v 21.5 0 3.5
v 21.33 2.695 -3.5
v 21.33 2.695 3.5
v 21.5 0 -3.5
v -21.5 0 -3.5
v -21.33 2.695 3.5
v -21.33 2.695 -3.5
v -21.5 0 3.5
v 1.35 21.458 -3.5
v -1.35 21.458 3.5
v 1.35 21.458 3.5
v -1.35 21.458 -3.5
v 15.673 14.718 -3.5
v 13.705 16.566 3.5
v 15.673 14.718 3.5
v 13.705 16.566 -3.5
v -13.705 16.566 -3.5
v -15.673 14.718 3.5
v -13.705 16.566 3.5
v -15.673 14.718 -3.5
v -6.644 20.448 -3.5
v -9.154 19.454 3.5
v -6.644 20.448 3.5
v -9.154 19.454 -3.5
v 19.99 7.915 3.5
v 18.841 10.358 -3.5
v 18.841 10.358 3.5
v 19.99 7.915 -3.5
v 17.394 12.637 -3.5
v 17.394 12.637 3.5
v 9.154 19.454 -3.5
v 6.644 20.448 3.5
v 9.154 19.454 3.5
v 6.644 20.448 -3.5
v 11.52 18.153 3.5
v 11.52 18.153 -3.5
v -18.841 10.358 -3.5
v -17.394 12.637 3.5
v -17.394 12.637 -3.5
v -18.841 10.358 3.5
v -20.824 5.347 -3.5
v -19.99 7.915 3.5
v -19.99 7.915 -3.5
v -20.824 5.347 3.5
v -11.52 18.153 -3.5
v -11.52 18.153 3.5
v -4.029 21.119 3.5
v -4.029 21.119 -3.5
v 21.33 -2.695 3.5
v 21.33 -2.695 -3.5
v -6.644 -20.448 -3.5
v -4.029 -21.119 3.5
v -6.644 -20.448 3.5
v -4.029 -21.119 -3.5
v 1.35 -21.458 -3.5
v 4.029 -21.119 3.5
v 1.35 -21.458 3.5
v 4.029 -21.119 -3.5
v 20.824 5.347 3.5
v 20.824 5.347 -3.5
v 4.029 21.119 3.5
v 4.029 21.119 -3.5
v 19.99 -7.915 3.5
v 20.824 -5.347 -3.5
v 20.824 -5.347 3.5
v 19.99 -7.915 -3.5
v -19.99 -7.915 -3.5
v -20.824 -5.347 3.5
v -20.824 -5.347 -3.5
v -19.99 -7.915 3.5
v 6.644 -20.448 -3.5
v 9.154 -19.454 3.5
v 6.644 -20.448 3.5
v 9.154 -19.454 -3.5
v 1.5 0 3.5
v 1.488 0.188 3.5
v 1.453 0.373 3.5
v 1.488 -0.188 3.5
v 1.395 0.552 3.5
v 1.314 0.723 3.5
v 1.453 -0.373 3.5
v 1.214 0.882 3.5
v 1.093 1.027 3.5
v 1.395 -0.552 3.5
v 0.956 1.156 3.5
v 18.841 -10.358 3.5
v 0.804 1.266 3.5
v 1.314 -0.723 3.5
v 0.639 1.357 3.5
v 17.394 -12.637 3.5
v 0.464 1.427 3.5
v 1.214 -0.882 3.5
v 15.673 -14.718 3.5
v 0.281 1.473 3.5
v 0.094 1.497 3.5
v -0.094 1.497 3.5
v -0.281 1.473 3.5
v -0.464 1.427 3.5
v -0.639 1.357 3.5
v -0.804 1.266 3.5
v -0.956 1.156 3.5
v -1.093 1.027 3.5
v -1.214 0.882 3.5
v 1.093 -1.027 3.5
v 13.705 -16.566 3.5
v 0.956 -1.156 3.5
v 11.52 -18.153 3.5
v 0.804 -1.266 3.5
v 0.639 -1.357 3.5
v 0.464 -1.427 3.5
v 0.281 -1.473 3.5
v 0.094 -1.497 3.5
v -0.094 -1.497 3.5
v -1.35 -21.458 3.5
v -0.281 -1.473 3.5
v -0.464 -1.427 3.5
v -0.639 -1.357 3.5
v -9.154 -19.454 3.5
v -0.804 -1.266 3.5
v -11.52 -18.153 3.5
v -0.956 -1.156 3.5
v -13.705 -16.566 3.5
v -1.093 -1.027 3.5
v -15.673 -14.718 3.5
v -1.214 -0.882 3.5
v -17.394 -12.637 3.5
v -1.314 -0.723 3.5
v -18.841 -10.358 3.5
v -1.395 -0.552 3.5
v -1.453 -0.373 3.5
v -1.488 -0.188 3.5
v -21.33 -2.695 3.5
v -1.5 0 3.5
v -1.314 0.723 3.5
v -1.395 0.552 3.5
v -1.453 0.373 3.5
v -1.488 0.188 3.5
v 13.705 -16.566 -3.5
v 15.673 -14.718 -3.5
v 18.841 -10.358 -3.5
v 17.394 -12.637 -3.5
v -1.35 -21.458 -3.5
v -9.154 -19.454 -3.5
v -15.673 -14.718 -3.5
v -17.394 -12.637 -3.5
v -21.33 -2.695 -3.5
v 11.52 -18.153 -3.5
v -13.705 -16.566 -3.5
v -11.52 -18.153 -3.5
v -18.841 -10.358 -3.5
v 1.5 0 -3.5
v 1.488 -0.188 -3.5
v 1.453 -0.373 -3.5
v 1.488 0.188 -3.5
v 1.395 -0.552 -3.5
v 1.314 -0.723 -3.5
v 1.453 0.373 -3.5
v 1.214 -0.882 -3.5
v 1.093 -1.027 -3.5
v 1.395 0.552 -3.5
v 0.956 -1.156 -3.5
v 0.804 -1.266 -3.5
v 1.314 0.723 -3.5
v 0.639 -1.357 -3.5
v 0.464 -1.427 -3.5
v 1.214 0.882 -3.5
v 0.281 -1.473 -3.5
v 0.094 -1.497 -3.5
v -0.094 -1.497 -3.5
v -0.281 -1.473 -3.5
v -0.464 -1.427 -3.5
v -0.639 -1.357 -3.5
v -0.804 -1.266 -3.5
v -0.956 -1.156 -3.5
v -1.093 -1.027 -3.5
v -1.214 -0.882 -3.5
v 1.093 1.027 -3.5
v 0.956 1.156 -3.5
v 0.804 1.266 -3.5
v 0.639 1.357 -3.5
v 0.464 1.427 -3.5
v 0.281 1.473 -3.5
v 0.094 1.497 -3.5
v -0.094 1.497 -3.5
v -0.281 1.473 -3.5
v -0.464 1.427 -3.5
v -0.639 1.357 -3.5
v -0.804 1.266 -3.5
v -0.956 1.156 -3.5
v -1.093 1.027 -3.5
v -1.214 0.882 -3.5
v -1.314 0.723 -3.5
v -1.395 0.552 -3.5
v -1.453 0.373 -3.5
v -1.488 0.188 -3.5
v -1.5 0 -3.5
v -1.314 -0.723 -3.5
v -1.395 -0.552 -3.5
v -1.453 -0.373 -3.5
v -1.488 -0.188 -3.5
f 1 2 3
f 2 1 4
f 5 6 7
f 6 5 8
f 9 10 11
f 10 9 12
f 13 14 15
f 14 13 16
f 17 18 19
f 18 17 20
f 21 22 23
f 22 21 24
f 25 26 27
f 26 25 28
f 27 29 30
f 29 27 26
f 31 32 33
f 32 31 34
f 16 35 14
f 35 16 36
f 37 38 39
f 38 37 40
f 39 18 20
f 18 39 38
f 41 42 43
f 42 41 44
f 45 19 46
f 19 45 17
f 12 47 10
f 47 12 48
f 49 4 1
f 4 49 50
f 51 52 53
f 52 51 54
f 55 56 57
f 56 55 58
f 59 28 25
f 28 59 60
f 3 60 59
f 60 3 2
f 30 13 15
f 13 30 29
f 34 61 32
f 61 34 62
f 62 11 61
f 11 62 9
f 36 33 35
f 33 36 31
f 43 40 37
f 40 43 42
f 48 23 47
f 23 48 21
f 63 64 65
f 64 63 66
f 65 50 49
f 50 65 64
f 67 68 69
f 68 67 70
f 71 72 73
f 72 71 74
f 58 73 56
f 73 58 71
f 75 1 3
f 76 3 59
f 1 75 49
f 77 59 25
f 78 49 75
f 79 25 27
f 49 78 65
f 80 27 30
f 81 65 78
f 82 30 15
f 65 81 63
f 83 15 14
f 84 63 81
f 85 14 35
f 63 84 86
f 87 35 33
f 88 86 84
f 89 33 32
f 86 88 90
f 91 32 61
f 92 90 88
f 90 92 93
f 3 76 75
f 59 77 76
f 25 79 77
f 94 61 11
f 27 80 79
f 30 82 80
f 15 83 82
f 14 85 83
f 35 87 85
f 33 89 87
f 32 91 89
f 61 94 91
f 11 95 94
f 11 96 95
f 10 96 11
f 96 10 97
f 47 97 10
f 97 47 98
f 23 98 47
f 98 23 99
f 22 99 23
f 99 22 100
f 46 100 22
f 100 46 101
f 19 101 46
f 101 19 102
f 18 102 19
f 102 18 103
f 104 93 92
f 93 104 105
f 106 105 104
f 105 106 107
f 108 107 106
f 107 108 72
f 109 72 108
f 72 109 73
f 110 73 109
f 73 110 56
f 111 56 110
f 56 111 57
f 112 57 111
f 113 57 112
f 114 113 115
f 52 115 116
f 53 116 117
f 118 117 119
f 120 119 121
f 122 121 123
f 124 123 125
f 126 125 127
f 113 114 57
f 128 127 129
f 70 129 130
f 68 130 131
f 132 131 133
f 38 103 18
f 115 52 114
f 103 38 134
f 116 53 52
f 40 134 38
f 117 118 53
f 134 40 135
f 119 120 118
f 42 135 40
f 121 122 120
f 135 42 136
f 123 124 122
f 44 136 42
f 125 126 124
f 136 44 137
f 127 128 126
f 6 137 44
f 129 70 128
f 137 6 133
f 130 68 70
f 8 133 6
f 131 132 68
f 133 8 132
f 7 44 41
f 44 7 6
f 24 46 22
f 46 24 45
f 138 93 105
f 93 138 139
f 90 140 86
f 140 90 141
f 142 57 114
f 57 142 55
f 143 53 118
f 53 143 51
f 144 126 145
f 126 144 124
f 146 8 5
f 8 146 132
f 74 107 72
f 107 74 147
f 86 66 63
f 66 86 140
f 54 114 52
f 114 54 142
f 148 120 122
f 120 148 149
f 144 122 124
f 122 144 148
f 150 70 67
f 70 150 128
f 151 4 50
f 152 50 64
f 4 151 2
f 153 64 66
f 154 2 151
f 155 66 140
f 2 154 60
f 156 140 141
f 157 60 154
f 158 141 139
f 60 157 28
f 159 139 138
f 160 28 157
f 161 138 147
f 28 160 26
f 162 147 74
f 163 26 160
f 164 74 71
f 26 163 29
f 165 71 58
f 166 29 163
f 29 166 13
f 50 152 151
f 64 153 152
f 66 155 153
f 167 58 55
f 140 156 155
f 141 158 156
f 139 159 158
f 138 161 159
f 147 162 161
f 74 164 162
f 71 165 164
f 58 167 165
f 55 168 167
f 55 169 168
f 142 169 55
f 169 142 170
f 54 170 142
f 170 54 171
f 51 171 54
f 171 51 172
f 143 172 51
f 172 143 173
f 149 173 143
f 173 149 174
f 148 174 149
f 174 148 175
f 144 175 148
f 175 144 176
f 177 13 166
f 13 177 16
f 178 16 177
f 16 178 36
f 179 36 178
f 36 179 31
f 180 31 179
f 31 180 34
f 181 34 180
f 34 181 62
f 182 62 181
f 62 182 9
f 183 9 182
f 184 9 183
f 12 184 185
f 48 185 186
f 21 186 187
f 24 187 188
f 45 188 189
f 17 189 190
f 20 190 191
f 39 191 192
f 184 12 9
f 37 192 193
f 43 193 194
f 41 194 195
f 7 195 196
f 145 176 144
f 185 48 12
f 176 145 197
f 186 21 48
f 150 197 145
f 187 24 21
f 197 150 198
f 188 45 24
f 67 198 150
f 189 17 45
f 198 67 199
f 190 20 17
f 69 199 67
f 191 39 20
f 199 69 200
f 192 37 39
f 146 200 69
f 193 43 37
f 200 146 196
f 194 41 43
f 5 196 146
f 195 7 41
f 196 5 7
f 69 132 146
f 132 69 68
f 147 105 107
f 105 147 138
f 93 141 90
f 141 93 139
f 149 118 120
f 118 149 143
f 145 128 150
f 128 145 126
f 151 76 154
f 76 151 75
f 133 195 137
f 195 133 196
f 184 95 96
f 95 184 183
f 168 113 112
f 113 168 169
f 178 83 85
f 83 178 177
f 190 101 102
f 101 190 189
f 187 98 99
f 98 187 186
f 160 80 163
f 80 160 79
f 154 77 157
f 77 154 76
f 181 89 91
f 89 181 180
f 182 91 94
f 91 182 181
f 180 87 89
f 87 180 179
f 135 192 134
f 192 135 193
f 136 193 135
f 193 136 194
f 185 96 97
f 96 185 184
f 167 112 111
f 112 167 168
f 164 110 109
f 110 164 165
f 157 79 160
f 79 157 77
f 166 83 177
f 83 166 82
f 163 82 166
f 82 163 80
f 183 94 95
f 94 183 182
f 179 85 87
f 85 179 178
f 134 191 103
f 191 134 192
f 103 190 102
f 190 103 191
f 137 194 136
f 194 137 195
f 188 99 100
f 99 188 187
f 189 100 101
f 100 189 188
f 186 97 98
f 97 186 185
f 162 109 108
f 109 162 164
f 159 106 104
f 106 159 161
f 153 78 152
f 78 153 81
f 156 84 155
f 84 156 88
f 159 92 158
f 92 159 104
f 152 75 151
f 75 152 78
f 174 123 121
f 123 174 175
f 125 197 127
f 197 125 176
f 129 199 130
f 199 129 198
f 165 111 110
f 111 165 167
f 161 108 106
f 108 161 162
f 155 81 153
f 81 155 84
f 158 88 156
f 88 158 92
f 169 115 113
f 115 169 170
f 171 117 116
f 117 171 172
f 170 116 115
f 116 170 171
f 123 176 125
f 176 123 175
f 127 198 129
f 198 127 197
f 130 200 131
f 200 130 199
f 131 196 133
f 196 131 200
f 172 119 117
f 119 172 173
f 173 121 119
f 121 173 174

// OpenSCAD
$fn = 50;


difference() {
	union() {
		translate(v = [0, 0, -3.5000000000]) {
			cylinder(h = 7, r = 21.5000000000);
		}
	}
	union() {
		translate(v = [0, 0, -100.0000000000]) {
			cylinder(h = 200, r = 1.5000000000);
		}
	}
}
